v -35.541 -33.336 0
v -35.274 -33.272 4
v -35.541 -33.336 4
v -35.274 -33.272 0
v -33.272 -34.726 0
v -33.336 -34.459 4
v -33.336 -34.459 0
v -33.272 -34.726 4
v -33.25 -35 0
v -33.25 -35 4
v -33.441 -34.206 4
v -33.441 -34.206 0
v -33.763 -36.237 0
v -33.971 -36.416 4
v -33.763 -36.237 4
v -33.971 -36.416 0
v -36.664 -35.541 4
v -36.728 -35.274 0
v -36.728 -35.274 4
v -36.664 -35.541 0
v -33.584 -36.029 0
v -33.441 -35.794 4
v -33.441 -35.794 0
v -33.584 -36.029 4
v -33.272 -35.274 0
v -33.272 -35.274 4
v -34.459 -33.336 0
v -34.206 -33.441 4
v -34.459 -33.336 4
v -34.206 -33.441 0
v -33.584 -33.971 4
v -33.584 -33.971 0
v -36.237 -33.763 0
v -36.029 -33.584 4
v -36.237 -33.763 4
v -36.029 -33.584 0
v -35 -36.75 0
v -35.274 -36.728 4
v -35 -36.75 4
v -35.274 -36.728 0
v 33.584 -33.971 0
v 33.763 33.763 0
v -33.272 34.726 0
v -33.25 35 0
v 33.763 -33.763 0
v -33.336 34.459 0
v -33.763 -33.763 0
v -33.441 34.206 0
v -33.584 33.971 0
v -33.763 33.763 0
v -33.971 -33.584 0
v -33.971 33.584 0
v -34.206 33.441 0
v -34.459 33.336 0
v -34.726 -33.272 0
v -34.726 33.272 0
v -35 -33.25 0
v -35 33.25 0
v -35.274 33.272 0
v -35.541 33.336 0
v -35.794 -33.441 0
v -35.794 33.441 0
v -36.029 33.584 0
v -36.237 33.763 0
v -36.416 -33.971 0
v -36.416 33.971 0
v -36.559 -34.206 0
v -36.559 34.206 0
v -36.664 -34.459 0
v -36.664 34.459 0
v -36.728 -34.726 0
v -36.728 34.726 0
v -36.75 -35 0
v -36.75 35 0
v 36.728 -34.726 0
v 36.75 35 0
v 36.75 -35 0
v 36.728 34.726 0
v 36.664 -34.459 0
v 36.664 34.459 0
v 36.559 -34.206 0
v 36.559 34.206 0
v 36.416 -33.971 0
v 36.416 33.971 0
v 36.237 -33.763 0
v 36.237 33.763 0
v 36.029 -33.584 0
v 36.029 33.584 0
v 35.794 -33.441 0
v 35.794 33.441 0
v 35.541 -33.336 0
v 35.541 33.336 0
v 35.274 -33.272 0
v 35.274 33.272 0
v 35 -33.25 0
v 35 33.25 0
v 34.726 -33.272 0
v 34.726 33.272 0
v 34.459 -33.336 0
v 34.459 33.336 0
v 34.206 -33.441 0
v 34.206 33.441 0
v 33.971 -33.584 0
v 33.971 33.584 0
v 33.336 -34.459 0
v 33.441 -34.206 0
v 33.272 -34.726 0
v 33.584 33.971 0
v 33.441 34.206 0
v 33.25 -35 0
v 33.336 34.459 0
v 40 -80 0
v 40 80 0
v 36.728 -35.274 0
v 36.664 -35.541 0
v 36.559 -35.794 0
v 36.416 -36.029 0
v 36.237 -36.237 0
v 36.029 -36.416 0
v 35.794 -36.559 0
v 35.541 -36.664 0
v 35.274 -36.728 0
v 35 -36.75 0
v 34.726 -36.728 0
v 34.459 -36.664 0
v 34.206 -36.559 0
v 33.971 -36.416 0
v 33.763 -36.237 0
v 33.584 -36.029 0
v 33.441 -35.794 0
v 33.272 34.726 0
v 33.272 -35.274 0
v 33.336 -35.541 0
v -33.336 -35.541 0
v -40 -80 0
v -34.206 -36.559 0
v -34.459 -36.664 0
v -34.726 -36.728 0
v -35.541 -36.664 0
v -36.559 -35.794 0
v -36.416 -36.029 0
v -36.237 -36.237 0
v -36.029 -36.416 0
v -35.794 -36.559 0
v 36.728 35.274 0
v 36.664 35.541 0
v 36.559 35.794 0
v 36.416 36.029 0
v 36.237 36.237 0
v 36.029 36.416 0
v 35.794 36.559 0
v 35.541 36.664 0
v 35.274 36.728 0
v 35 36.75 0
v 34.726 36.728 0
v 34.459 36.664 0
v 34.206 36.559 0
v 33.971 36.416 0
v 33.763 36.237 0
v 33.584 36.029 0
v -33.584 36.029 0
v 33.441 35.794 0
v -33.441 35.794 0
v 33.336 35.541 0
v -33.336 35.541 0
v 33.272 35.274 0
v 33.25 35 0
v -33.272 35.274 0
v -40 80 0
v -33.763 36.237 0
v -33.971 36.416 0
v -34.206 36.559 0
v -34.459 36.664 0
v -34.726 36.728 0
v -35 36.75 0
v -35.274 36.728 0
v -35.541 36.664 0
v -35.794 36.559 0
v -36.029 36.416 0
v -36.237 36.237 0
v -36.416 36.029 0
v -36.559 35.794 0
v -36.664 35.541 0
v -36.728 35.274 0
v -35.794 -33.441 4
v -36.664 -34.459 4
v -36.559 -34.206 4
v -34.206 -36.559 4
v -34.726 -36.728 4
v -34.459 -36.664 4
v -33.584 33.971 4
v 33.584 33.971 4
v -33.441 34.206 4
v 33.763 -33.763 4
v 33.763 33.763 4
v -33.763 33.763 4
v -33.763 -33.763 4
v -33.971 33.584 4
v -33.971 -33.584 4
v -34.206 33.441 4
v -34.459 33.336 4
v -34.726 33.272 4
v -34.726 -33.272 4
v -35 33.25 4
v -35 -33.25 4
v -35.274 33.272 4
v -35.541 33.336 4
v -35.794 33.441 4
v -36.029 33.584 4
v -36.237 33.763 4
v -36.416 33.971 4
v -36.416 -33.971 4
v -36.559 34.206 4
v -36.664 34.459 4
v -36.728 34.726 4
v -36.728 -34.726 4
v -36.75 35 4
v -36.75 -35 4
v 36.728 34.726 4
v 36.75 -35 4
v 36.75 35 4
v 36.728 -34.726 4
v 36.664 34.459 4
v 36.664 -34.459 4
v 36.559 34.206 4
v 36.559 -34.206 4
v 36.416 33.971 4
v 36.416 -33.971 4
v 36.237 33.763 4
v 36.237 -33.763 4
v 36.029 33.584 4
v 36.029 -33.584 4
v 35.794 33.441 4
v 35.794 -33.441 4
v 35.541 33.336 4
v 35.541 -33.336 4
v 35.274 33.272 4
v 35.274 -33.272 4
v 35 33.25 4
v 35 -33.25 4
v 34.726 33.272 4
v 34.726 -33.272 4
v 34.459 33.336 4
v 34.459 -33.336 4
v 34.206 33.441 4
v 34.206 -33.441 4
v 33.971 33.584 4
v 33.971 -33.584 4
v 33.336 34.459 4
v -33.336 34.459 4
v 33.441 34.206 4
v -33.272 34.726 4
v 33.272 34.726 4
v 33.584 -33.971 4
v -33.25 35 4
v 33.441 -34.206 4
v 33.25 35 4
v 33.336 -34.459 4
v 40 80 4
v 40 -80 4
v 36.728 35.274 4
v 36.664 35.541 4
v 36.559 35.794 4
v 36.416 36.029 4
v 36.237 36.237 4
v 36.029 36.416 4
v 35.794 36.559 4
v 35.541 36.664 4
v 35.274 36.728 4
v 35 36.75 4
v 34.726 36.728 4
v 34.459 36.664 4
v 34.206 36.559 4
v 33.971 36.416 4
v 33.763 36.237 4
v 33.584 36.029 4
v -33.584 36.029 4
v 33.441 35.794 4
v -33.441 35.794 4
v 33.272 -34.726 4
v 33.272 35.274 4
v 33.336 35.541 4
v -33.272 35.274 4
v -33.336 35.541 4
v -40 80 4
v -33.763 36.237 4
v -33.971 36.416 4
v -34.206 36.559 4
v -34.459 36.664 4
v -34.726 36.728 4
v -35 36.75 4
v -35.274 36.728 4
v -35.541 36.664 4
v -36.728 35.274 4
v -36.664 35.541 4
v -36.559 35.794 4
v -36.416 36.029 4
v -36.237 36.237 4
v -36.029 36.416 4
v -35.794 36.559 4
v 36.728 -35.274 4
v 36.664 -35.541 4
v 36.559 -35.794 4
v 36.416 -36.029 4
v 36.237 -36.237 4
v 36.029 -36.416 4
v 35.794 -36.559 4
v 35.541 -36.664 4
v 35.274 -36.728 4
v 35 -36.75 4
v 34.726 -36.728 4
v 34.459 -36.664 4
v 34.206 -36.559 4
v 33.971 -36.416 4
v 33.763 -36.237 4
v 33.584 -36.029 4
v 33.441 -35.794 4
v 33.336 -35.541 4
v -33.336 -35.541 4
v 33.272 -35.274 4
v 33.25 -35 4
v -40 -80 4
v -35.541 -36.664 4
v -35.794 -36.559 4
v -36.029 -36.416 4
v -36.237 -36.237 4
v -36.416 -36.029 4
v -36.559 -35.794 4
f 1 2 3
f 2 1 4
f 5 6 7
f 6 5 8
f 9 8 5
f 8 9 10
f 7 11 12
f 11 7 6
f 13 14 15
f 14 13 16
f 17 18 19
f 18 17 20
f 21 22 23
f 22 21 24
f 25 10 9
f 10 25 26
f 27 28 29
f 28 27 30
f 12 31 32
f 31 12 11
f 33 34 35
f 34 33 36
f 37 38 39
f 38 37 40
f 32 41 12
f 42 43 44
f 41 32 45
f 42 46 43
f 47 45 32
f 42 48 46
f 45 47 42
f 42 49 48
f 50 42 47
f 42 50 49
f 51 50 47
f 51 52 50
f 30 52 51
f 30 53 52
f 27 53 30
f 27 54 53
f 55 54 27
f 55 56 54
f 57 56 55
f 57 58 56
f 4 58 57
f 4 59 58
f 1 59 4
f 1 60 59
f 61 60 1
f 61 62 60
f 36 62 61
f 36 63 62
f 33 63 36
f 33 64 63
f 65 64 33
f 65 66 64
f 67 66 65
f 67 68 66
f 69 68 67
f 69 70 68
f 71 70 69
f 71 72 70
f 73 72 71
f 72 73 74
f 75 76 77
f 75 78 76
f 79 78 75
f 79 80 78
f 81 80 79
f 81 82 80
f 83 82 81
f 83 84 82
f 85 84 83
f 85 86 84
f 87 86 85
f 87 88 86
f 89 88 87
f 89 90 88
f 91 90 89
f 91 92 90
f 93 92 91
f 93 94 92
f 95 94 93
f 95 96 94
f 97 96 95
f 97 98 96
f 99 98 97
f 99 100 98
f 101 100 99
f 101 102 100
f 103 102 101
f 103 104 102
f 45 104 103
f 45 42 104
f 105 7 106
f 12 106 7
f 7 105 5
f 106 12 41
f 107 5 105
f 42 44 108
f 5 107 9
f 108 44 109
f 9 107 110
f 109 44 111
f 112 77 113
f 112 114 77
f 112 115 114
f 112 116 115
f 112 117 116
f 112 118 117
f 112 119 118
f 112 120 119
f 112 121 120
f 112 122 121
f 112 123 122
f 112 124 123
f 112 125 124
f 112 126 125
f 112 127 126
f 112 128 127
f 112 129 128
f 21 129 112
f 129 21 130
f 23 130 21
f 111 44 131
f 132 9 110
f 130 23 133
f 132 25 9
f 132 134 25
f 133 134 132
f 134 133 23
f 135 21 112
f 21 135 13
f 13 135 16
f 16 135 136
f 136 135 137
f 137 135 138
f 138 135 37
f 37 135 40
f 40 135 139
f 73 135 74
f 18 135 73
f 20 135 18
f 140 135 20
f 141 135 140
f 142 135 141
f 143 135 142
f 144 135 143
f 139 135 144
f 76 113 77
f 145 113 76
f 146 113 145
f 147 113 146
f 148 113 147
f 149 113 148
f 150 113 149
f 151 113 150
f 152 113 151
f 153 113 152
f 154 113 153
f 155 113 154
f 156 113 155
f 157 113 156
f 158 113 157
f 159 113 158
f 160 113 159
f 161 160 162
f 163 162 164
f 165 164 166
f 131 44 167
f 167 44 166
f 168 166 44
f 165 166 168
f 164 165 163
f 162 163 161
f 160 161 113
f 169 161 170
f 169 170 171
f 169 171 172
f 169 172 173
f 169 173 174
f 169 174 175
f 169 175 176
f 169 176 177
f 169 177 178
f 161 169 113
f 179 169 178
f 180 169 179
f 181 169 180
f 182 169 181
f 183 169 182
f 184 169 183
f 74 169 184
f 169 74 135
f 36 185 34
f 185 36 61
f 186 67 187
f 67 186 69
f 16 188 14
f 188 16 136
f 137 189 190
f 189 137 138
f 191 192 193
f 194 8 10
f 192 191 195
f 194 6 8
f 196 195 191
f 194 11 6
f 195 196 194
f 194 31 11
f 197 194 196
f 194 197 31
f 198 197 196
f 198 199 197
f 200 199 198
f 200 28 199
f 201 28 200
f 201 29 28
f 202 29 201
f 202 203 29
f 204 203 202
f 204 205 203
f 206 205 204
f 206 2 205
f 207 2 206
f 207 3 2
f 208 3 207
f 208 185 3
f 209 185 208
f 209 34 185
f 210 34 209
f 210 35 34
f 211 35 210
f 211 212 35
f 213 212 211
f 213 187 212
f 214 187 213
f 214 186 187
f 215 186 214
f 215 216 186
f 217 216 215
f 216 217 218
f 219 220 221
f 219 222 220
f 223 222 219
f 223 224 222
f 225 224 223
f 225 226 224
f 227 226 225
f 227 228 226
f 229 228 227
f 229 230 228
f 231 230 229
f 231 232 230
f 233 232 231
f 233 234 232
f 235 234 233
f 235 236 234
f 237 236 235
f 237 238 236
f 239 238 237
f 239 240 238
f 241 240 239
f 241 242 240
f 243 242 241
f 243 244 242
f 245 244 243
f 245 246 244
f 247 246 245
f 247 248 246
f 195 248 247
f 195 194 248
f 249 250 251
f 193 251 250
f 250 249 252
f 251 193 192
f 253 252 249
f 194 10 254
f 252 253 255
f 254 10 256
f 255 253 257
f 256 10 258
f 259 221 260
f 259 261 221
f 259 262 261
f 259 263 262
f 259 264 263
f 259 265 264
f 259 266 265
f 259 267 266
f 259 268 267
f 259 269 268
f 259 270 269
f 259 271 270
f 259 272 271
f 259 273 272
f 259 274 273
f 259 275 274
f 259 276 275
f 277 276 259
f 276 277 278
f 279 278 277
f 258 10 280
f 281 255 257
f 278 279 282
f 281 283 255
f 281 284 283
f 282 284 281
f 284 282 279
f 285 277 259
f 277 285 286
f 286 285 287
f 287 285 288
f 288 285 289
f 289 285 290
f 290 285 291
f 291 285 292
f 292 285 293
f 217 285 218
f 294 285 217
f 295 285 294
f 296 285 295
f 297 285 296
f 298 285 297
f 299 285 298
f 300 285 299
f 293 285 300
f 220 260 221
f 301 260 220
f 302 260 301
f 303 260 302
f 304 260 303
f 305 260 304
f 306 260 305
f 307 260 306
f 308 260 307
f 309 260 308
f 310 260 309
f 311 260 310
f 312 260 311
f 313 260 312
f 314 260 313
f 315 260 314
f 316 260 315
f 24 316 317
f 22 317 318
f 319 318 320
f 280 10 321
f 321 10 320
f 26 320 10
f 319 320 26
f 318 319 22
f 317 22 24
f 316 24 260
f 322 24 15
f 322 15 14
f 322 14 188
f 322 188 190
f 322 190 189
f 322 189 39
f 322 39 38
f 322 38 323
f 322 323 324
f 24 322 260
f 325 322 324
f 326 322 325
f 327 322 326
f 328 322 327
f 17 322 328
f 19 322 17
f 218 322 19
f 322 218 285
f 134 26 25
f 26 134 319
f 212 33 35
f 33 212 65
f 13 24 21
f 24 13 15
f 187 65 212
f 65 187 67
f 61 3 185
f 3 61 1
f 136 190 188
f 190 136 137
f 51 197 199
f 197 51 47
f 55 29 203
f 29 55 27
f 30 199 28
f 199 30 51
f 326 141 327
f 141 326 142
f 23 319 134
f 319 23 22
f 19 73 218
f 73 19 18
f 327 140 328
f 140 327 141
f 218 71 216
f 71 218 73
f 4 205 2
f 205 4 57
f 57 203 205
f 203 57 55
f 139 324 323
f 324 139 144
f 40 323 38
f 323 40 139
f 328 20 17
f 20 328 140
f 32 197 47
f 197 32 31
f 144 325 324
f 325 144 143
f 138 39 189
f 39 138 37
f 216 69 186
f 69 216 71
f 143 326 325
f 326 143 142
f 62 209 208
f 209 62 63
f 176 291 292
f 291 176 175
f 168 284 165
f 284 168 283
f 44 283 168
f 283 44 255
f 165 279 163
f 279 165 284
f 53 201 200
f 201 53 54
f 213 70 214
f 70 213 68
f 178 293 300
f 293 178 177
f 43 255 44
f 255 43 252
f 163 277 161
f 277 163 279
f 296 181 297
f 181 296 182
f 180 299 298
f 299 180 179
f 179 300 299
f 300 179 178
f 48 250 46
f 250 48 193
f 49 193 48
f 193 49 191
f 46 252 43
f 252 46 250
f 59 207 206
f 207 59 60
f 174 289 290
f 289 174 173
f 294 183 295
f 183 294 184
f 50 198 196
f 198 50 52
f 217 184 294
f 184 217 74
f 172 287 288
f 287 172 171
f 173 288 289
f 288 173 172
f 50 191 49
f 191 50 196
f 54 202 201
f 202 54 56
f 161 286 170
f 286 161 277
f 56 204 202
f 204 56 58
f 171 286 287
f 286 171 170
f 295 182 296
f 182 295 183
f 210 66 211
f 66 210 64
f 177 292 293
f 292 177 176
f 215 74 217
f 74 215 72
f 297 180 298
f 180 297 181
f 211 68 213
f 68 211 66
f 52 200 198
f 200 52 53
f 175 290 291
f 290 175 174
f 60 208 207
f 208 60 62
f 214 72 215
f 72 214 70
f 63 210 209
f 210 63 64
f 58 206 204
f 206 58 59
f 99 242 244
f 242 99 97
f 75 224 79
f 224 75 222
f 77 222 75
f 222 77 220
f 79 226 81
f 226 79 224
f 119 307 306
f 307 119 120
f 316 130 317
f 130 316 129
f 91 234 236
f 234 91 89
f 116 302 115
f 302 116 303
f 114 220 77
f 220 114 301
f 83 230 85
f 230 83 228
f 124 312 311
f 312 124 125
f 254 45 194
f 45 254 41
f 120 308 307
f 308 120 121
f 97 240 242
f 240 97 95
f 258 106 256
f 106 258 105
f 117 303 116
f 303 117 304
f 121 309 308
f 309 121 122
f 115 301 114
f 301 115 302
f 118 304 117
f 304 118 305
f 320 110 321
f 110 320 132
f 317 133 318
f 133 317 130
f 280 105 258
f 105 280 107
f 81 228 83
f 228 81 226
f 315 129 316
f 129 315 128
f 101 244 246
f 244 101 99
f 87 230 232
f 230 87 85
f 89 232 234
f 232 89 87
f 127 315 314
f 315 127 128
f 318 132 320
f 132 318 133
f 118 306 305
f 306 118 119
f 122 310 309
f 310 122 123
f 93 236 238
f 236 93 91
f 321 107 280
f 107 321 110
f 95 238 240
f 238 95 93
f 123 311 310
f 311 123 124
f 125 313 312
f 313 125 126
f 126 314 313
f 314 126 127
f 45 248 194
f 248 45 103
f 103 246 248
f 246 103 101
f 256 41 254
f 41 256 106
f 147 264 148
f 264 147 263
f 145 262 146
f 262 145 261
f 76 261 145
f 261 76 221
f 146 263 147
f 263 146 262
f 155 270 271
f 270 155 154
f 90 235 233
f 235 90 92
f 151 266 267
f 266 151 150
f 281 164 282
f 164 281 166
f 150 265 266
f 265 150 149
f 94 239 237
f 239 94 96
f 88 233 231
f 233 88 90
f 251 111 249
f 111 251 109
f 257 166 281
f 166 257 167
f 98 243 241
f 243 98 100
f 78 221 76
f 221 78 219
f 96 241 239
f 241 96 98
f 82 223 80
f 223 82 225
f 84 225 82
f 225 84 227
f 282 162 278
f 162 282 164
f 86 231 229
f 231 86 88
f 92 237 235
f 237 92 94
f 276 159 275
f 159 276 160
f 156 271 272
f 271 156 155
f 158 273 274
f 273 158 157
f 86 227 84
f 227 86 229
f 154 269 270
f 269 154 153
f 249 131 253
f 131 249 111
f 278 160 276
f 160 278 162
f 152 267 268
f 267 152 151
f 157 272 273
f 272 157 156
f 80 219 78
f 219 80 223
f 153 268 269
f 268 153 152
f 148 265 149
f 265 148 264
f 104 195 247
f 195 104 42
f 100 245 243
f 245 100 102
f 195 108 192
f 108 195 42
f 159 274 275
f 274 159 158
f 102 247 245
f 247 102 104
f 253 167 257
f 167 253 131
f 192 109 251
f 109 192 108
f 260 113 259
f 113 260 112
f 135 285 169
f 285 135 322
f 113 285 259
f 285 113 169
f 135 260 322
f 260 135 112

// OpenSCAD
// file: ../lib/rpi.scad
module base_plate_screw_head_cone(screw_head_radius = 6, screw_head_depth = 2)
{

    rotate_extrude()
    {
        translate([0, 0, 0]) polygon(points=[[0,0],[screw_head_radius, 0],[0,screw_head_depth]], paths=[[0,1,2]]);
    }
}


module raspberry_pi_holes(thickness = 3, screw_hole_diameter = 3)
{
//    z_offset = -thickness / 2.0;
    z_offset = -thickness;
    for ( x_offset = [3.5, 61.5] )
    {
        for ( y_offset = [3.5, 52.5] )
        {
            union()
            {
                translate([x_offset, y_offset, z_offset]) cylinder(d=screw_hole_diameter, h=thickness);
                translate([x_offset, y_offset, z_offset]) base_plate_screw_head_cone();
            }
        }
    }
}


// camera hole is centered at (0, 0, 0)
//camera_hole_center_x = 0;
//camera_hole_center_y = 6.7;
//module rpi_camera_holes(thickness = 2)
//{
//    wall_thickness = thickness;
//    
//    screw_head_depth = 2;
//    screw_head_radius = 4;
//    
//    translate([0, 0, -wall_thickness + 1])
//    union()
//    {
//        for ( y_offset = [-6.75, 6.25] )
//        {
//            for ( x_offset = [-10.5, 10.5] )
//            {
//                // screw hole
//                translate([camera_hole_center_x + x_offset, camera_hole_center_y+ y_offset, -10])
//                cylinder(h=20, r=1.25);
//                
//                // screw head cone
//                translate([camera_hole_center_x + x_offset, camera_hole_center_y+ y_offset, 0])
//                rotate([0, 0, 0])
//                rotate_extrude()
//                {
//                    translate([0, 0, 0]) polygon(points=[[0,0],[screw_head_radius, 0],[0,screw_head_depth]], paths=[[0,1,2]]);
//                }
//            }
//        }
//    }
//    
//    translate([camera_hole_center_x, camera_hole_center_y - 6.75, -wall_thickness])cube(size = [9.5, 9.5, 9.5], center = true);
//}

// lens center is at (0, 0, 0)
module rpi_camera_holes(thickness = 2, screw_hole_diameter = 2.5)
{
    lens_side_length = 9.5;
    
    union()
    {
        for ( y_offset = [0, 13] )
        {
            for ( x_offset = [-10.5, 10.5] )
            {
                translate([x_offset, y_offset, 0])
                cylinder(d=screw_hole_diameter, h=thickness);
            }
        }
        
        translate([-lens_side_length / 2, -lens_side_length / 2, 0])
        cube([9.5, 9.5, thickness]);
    }
}
// main file
include <../lib/rpi.scad>

$fn=40;

length = 160;
width = 80;
height = 4;

thickness = 1.5;

module upper_deck_holes(thickness = 100, screw_hole_diameter = 1.75)
{
    square_side_length = 35;
    
    for( x_offset = [-square_side_length, square_side_length] )
    {
        for( y_offset = [-square_side_length, square_side_length] )
        {
            translate([x_offset, y_offset, 0])
            cylinder( d = 3.5, h = height );
        }
    }
}

difference()
{
    translate([-width / 2, -length / 2, 0])
    union()
    {
        cube([width, length, height]);
    }
    union()
    {
        upper_deck_holes();
    }
}
